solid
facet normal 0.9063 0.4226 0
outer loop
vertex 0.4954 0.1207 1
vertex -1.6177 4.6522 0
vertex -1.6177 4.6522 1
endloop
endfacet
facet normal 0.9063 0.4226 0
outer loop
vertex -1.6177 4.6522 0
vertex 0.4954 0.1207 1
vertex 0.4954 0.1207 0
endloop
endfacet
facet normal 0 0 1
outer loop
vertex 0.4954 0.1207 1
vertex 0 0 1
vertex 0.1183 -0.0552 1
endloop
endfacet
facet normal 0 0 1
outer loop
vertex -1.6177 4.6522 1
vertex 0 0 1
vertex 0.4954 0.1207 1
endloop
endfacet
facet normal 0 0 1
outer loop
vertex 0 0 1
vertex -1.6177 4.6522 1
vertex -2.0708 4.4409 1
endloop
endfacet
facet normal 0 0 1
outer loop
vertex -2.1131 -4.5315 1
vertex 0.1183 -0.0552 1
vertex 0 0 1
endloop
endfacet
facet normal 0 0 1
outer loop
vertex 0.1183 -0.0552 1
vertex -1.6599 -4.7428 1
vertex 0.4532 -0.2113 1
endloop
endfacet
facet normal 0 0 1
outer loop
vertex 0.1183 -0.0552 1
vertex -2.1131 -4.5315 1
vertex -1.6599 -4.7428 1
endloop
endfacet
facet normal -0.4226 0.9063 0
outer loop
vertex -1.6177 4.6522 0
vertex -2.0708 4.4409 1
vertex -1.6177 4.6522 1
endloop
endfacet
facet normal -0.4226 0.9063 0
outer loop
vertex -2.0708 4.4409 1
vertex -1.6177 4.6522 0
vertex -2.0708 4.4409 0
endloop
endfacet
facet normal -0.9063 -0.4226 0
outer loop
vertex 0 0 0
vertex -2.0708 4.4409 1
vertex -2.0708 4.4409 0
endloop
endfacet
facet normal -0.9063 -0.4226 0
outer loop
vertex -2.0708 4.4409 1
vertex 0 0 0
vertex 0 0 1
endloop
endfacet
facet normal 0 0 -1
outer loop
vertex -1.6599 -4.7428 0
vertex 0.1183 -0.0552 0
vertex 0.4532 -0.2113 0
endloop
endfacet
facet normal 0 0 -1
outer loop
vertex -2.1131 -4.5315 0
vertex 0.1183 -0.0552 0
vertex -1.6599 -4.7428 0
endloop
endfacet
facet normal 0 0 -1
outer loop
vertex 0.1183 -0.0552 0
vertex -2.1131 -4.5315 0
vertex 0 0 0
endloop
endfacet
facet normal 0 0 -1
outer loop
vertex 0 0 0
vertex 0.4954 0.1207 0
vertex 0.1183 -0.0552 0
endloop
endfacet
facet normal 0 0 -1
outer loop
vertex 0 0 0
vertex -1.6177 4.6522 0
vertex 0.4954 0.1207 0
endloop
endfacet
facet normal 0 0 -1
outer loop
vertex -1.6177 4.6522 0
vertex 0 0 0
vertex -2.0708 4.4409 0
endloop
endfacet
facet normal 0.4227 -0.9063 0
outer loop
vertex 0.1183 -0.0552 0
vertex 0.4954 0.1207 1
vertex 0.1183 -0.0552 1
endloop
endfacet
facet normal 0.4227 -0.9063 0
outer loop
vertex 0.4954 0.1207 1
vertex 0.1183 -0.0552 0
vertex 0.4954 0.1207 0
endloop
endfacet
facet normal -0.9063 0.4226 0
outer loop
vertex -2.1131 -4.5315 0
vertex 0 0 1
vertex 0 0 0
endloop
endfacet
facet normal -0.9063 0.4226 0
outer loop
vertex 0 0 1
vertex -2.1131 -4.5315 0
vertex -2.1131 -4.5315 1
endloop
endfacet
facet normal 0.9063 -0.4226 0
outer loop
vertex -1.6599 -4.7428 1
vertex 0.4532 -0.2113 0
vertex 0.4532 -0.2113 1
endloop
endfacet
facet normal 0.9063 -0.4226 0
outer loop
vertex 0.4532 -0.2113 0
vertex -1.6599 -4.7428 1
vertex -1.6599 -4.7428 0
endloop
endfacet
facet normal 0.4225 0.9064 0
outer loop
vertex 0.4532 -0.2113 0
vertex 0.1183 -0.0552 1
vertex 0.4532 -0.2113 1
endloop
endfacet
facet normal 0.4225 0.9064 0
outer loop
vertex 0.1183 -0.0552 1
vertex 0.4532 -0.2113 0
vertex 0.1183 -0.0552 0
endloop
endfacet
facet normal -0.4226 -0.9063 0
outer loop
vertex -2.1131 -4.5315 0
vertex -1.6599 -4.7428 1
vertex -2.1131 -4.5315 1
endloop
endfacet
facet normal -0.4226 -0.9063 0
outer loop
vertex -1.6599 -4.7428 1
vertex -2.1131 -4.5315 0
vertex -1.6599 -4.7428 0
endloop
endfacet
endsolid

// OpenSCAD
rotate([0,0,25]){translate([0,-0.1,0])
    {
    cube([0.5,5,1]);
    }
}

rotate([0,0,-25]){
 translate([0,-5,0])
 {
        cube([0.5,5,1]);
 }
 }
